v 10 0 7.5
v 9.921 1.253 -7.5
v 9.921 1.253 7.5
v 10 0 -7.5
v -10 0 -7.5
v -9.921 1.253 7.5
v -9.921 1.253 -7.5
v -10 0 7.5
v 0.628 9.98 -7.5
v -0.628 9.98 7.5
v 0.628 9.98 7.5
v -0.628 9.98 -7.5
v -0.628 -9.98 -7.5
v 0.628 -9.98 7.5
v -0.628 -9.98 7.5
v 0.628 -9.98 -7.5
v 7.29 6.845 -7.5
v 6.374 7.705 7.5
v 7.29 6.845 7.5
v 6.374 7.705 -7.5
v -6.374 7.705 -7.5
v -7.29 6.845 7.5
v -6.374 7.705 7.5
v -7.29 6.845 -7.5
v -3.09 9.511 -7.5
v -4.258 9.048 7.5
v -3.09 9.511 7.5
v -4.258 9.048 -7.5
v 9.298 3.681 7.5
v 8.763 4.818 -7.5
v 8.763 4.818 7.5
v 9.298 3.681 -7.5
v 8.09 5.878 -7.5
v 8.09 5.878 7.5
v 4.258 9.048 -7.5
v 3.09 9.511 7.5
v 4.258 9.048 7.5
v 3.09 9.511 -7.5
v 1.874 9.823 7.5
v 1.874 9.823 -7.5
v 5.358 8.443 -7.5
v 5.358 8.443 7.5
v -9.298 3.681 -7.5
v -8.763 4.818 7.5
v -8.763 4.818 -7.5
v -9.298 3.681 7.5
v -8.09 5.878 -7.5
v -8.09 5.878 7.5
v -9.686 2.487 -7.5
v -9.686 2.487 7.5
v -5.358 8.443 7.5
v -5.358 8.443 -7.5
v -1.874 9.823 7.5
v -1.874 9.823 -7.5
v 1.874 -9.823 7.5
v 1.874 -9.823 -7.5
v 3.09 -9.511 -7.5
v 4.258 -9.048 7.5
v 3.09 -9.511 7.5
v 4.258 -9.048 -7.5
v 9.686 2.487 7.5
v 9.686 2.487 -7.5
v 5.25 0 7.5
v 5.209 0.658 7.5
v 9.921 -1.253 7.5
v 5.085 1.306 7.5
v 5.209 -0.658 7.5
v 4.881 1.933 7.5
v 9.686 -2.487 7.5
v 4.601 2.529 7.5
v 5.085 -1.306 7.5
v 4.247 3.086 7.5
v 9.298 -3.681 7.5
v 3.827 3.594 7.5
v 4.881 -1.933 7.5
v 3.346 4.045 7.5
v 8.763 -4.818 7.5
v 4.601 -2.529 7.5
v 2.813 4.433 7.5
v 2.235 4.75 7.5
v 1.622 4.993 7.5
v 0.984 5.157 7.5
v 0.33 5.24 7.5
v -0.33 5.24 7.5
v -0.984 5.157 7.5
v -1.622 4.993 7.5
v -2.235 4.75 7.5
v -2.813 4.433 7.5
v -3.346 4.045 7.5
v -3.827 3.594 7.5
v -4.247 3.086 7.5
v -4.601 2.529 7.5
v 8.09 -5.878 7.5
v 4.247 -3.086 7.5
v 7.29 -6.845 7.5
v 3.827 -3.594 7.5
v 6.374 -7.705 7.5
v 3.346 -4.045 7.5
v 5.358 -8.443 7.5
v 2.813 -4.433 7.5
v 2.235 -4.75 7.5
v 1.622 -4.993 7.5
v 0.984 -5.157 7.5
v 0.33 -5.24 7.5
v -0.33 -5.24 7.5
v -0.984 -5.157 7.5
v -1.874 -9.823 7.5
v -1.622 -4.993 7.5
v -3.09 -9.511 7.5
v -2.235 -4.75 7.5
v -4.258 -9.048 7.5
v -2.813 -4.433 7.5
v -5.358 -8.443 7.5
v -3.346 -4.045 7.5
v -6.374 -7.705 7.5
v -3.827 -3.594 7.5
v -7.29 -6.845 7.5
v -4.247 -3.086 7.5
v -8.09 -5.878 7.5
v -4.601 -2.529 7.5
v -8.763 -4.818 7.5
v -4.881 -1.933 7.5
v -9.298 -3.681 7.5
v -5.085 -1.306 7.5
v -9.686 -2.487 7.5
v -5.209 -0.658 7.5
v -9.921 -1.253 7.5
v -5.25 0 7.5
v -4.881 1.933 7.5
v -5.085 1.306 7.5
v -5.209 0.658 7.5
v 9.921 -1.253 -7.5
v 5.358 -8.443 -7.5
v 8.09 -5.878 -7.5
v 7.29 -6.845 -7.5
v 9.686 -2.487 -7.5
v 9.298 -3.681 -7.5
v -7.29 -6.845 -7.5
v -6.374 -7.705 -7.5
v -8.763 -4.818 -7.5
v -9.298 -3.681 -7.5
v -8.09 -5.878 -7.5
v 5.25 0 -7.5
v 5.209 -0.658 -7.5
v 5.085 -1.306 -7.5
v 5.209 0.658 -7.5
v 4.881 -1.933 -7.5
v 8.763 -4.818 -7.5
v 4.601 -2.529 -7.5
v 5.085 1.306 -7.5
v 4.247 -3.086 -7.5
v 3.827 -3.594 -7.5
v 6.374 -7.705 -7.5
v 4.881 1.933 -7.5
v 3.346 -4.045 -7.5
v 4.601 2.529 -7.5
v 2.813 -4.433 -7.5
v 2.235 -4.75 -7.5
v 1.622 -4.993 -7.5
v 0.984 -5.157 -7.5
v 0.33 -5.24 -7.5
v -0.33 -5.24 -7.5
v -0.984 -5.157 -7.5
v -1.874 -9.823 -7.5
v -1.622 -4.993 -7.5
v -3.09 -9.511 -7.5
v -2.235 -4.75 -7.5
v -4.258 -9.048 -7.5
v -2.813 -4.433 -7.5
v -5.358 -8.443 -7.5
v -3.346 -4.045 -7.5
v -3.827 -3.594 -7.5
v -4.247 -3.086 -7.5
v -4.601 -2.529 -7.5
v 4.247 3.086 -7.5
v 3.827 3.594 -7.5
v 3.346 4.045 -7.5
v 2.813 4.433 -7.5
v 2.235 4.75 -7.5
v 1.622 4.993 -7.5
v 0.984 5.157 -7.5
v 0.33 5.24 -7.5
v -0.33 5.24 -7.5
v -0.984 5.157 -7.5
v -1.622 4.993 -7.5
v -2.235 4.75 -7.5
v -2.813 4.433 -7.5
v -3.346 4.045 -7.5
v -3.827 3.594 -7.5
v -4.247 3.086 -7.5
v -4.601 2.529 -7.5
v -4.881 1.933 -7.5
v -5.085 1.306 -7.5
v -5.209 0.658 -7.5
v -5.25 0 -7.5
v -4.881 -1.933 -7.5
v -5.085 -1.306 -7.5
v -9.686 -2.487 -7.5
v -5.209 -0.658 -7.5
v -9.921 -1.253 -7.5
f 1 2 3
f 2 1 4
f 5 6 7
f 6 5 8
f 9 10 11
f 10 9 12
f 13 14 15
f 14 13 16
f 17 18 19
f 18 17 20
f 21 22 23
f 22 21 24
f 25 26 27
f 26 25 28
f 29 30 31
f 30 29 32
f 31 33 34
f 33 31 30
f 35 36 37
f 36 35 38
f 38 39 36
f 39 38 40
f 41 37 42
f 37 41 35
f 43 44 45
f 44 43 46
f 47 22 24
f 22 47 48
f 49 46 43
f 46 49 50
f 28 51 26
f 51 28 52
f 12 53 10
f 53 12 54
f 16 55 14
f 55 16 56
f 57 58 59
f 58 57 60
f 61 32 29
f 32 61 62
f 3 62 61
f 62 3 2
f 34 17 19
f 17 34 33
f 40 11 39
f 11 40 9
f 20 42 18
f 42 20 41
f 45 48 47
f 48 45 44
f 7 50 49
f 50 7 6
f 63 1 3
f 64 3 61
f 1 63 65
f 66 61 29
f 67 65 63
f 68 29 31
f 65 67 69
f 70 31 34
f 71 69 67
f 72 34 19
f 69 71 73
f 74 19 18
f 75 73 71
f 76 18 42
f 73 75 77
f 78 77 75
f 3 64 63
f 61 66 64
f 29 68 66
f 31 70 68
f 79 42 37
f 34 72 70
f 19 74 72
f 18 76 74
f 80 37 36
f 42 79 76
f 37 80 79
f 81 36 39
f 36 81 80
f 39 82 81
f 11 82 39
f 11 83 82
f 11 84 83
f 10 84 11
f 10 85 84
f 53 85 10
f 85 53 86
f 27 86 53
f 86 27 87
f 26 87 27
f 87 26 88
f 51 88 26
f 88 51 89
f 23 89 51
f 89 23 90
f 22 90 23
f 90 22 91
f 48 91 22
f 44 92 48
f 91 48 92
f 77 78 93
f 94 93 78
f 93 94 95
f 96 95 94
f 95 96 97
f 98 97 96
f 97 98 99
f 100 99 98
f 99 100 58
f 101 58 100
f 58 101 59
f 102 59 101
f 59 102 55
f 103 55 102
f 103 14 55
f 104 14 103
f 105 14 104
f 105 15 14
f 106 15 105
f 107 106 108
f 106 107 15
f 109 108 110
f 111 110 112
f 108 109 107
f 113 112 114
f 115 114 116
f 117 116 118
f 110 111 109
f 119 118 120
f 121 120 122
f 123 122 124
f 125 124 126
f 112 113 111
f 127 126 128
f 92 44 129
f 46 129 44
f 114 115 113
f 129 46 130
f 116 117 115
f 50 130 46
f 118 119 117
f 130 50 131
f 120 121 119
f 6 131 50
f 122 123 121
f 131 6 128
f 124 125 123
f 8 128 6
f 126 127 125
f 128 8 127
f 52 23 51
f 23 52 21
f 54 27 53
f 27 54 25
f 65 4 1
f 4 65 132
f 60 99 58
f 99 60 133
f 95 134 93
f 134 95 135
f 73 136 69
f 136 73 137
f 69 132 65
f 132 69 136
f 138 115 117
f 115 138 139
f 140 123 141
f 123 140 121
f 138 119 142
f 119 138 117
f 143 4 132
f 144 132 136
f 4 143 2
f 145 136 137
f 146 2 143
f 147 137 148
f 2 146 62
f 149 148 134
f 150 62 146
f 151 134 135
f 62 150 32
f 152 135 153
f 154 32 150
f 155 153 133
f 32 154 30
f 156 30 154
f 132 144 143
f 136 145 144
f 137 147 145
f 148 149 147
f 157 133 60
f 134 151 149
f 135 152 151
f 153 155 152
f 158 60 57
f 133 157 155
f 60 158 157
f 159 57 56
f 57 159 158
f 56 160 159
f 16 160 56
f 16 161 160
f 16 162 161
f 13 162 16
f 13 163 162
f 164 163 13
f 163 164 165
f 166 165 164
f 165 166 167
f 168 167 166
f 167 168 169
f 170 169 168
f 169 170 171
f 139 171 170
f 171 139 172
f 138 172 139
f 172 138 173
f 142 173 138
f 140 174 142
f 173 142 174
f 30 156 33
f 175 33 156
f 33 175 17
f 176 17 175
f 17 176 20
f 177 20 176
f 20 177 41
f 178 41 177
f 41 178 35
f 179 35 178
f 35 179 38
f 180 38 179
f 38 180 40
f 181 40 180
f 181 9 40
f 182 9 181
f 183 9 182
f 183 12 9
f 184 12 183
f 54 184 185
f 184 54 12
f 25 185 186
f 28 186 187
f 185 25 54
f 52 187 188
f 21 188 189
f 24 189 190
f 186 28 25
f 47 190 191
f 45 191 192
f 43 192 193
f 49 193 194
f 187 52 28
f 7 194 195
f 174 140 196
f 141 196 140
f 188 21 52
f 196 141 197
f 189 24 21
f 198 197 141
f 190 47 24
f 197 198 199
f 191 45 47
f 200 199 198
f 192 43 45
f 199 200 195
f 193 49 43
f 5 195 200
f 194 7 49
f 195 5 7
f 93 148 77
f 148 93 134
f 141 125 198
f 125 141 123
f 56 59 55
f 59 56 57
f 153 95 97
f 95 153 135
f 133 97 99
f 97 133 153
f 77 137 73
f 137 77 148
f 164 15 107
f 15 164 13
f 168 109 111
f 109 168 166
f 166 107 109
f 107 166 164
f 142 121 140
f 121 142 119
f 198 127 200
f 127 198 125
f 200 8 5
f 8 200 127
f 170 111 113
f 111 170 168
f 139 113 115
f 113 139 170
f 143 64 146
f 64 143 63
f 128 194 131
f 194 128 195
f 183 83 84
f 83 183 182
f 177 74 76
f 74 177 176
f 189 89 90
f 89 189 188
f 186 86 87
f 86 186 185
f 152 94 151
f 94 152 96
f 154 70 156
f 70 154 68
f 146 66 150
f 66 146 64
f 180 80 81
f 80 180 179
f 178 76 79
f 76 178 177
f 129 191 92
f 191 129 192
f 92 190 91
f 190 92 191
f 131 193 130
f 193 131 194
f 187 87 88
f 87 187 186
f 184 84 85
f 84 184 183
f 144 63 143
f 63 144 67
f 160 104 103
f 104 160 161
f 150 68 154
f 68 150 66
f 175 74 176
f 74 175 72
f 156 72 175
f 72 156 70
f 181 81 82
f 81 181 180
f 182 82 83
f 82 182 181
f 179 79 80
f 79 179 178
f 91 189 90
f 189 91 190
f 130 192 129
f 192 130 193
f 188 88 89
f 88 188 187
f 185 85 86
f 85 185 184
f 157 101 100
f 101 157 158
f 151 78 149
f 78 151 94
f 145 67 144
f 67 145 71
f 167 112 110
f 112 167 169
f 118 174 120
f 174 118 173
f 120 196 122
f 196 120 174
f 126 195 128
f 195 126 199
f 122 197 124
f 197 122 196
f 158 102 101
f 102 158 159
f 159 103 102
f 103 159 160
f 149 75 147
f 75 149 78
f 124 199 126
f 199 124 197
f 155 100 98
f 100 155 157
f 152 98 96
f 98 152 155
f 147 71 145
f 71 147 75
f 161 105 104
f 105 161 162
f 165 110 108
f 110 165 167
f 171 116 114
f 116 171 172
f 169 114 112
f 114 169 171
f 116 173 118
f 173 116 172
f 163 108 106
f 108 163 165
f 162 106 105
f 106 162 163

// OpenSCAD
$fn = 50;


difference() {
	union() {
		translate(v = [0, 0, -7.5000000000]) {
			cylinder(h = 15, r = 10.0000000000);
		}
	}
	union() {
		translate(v = [0, 0, -100.0000000000]) {
			cylinder(h = 200, r = 5.2500000000);
		}
	}
}
